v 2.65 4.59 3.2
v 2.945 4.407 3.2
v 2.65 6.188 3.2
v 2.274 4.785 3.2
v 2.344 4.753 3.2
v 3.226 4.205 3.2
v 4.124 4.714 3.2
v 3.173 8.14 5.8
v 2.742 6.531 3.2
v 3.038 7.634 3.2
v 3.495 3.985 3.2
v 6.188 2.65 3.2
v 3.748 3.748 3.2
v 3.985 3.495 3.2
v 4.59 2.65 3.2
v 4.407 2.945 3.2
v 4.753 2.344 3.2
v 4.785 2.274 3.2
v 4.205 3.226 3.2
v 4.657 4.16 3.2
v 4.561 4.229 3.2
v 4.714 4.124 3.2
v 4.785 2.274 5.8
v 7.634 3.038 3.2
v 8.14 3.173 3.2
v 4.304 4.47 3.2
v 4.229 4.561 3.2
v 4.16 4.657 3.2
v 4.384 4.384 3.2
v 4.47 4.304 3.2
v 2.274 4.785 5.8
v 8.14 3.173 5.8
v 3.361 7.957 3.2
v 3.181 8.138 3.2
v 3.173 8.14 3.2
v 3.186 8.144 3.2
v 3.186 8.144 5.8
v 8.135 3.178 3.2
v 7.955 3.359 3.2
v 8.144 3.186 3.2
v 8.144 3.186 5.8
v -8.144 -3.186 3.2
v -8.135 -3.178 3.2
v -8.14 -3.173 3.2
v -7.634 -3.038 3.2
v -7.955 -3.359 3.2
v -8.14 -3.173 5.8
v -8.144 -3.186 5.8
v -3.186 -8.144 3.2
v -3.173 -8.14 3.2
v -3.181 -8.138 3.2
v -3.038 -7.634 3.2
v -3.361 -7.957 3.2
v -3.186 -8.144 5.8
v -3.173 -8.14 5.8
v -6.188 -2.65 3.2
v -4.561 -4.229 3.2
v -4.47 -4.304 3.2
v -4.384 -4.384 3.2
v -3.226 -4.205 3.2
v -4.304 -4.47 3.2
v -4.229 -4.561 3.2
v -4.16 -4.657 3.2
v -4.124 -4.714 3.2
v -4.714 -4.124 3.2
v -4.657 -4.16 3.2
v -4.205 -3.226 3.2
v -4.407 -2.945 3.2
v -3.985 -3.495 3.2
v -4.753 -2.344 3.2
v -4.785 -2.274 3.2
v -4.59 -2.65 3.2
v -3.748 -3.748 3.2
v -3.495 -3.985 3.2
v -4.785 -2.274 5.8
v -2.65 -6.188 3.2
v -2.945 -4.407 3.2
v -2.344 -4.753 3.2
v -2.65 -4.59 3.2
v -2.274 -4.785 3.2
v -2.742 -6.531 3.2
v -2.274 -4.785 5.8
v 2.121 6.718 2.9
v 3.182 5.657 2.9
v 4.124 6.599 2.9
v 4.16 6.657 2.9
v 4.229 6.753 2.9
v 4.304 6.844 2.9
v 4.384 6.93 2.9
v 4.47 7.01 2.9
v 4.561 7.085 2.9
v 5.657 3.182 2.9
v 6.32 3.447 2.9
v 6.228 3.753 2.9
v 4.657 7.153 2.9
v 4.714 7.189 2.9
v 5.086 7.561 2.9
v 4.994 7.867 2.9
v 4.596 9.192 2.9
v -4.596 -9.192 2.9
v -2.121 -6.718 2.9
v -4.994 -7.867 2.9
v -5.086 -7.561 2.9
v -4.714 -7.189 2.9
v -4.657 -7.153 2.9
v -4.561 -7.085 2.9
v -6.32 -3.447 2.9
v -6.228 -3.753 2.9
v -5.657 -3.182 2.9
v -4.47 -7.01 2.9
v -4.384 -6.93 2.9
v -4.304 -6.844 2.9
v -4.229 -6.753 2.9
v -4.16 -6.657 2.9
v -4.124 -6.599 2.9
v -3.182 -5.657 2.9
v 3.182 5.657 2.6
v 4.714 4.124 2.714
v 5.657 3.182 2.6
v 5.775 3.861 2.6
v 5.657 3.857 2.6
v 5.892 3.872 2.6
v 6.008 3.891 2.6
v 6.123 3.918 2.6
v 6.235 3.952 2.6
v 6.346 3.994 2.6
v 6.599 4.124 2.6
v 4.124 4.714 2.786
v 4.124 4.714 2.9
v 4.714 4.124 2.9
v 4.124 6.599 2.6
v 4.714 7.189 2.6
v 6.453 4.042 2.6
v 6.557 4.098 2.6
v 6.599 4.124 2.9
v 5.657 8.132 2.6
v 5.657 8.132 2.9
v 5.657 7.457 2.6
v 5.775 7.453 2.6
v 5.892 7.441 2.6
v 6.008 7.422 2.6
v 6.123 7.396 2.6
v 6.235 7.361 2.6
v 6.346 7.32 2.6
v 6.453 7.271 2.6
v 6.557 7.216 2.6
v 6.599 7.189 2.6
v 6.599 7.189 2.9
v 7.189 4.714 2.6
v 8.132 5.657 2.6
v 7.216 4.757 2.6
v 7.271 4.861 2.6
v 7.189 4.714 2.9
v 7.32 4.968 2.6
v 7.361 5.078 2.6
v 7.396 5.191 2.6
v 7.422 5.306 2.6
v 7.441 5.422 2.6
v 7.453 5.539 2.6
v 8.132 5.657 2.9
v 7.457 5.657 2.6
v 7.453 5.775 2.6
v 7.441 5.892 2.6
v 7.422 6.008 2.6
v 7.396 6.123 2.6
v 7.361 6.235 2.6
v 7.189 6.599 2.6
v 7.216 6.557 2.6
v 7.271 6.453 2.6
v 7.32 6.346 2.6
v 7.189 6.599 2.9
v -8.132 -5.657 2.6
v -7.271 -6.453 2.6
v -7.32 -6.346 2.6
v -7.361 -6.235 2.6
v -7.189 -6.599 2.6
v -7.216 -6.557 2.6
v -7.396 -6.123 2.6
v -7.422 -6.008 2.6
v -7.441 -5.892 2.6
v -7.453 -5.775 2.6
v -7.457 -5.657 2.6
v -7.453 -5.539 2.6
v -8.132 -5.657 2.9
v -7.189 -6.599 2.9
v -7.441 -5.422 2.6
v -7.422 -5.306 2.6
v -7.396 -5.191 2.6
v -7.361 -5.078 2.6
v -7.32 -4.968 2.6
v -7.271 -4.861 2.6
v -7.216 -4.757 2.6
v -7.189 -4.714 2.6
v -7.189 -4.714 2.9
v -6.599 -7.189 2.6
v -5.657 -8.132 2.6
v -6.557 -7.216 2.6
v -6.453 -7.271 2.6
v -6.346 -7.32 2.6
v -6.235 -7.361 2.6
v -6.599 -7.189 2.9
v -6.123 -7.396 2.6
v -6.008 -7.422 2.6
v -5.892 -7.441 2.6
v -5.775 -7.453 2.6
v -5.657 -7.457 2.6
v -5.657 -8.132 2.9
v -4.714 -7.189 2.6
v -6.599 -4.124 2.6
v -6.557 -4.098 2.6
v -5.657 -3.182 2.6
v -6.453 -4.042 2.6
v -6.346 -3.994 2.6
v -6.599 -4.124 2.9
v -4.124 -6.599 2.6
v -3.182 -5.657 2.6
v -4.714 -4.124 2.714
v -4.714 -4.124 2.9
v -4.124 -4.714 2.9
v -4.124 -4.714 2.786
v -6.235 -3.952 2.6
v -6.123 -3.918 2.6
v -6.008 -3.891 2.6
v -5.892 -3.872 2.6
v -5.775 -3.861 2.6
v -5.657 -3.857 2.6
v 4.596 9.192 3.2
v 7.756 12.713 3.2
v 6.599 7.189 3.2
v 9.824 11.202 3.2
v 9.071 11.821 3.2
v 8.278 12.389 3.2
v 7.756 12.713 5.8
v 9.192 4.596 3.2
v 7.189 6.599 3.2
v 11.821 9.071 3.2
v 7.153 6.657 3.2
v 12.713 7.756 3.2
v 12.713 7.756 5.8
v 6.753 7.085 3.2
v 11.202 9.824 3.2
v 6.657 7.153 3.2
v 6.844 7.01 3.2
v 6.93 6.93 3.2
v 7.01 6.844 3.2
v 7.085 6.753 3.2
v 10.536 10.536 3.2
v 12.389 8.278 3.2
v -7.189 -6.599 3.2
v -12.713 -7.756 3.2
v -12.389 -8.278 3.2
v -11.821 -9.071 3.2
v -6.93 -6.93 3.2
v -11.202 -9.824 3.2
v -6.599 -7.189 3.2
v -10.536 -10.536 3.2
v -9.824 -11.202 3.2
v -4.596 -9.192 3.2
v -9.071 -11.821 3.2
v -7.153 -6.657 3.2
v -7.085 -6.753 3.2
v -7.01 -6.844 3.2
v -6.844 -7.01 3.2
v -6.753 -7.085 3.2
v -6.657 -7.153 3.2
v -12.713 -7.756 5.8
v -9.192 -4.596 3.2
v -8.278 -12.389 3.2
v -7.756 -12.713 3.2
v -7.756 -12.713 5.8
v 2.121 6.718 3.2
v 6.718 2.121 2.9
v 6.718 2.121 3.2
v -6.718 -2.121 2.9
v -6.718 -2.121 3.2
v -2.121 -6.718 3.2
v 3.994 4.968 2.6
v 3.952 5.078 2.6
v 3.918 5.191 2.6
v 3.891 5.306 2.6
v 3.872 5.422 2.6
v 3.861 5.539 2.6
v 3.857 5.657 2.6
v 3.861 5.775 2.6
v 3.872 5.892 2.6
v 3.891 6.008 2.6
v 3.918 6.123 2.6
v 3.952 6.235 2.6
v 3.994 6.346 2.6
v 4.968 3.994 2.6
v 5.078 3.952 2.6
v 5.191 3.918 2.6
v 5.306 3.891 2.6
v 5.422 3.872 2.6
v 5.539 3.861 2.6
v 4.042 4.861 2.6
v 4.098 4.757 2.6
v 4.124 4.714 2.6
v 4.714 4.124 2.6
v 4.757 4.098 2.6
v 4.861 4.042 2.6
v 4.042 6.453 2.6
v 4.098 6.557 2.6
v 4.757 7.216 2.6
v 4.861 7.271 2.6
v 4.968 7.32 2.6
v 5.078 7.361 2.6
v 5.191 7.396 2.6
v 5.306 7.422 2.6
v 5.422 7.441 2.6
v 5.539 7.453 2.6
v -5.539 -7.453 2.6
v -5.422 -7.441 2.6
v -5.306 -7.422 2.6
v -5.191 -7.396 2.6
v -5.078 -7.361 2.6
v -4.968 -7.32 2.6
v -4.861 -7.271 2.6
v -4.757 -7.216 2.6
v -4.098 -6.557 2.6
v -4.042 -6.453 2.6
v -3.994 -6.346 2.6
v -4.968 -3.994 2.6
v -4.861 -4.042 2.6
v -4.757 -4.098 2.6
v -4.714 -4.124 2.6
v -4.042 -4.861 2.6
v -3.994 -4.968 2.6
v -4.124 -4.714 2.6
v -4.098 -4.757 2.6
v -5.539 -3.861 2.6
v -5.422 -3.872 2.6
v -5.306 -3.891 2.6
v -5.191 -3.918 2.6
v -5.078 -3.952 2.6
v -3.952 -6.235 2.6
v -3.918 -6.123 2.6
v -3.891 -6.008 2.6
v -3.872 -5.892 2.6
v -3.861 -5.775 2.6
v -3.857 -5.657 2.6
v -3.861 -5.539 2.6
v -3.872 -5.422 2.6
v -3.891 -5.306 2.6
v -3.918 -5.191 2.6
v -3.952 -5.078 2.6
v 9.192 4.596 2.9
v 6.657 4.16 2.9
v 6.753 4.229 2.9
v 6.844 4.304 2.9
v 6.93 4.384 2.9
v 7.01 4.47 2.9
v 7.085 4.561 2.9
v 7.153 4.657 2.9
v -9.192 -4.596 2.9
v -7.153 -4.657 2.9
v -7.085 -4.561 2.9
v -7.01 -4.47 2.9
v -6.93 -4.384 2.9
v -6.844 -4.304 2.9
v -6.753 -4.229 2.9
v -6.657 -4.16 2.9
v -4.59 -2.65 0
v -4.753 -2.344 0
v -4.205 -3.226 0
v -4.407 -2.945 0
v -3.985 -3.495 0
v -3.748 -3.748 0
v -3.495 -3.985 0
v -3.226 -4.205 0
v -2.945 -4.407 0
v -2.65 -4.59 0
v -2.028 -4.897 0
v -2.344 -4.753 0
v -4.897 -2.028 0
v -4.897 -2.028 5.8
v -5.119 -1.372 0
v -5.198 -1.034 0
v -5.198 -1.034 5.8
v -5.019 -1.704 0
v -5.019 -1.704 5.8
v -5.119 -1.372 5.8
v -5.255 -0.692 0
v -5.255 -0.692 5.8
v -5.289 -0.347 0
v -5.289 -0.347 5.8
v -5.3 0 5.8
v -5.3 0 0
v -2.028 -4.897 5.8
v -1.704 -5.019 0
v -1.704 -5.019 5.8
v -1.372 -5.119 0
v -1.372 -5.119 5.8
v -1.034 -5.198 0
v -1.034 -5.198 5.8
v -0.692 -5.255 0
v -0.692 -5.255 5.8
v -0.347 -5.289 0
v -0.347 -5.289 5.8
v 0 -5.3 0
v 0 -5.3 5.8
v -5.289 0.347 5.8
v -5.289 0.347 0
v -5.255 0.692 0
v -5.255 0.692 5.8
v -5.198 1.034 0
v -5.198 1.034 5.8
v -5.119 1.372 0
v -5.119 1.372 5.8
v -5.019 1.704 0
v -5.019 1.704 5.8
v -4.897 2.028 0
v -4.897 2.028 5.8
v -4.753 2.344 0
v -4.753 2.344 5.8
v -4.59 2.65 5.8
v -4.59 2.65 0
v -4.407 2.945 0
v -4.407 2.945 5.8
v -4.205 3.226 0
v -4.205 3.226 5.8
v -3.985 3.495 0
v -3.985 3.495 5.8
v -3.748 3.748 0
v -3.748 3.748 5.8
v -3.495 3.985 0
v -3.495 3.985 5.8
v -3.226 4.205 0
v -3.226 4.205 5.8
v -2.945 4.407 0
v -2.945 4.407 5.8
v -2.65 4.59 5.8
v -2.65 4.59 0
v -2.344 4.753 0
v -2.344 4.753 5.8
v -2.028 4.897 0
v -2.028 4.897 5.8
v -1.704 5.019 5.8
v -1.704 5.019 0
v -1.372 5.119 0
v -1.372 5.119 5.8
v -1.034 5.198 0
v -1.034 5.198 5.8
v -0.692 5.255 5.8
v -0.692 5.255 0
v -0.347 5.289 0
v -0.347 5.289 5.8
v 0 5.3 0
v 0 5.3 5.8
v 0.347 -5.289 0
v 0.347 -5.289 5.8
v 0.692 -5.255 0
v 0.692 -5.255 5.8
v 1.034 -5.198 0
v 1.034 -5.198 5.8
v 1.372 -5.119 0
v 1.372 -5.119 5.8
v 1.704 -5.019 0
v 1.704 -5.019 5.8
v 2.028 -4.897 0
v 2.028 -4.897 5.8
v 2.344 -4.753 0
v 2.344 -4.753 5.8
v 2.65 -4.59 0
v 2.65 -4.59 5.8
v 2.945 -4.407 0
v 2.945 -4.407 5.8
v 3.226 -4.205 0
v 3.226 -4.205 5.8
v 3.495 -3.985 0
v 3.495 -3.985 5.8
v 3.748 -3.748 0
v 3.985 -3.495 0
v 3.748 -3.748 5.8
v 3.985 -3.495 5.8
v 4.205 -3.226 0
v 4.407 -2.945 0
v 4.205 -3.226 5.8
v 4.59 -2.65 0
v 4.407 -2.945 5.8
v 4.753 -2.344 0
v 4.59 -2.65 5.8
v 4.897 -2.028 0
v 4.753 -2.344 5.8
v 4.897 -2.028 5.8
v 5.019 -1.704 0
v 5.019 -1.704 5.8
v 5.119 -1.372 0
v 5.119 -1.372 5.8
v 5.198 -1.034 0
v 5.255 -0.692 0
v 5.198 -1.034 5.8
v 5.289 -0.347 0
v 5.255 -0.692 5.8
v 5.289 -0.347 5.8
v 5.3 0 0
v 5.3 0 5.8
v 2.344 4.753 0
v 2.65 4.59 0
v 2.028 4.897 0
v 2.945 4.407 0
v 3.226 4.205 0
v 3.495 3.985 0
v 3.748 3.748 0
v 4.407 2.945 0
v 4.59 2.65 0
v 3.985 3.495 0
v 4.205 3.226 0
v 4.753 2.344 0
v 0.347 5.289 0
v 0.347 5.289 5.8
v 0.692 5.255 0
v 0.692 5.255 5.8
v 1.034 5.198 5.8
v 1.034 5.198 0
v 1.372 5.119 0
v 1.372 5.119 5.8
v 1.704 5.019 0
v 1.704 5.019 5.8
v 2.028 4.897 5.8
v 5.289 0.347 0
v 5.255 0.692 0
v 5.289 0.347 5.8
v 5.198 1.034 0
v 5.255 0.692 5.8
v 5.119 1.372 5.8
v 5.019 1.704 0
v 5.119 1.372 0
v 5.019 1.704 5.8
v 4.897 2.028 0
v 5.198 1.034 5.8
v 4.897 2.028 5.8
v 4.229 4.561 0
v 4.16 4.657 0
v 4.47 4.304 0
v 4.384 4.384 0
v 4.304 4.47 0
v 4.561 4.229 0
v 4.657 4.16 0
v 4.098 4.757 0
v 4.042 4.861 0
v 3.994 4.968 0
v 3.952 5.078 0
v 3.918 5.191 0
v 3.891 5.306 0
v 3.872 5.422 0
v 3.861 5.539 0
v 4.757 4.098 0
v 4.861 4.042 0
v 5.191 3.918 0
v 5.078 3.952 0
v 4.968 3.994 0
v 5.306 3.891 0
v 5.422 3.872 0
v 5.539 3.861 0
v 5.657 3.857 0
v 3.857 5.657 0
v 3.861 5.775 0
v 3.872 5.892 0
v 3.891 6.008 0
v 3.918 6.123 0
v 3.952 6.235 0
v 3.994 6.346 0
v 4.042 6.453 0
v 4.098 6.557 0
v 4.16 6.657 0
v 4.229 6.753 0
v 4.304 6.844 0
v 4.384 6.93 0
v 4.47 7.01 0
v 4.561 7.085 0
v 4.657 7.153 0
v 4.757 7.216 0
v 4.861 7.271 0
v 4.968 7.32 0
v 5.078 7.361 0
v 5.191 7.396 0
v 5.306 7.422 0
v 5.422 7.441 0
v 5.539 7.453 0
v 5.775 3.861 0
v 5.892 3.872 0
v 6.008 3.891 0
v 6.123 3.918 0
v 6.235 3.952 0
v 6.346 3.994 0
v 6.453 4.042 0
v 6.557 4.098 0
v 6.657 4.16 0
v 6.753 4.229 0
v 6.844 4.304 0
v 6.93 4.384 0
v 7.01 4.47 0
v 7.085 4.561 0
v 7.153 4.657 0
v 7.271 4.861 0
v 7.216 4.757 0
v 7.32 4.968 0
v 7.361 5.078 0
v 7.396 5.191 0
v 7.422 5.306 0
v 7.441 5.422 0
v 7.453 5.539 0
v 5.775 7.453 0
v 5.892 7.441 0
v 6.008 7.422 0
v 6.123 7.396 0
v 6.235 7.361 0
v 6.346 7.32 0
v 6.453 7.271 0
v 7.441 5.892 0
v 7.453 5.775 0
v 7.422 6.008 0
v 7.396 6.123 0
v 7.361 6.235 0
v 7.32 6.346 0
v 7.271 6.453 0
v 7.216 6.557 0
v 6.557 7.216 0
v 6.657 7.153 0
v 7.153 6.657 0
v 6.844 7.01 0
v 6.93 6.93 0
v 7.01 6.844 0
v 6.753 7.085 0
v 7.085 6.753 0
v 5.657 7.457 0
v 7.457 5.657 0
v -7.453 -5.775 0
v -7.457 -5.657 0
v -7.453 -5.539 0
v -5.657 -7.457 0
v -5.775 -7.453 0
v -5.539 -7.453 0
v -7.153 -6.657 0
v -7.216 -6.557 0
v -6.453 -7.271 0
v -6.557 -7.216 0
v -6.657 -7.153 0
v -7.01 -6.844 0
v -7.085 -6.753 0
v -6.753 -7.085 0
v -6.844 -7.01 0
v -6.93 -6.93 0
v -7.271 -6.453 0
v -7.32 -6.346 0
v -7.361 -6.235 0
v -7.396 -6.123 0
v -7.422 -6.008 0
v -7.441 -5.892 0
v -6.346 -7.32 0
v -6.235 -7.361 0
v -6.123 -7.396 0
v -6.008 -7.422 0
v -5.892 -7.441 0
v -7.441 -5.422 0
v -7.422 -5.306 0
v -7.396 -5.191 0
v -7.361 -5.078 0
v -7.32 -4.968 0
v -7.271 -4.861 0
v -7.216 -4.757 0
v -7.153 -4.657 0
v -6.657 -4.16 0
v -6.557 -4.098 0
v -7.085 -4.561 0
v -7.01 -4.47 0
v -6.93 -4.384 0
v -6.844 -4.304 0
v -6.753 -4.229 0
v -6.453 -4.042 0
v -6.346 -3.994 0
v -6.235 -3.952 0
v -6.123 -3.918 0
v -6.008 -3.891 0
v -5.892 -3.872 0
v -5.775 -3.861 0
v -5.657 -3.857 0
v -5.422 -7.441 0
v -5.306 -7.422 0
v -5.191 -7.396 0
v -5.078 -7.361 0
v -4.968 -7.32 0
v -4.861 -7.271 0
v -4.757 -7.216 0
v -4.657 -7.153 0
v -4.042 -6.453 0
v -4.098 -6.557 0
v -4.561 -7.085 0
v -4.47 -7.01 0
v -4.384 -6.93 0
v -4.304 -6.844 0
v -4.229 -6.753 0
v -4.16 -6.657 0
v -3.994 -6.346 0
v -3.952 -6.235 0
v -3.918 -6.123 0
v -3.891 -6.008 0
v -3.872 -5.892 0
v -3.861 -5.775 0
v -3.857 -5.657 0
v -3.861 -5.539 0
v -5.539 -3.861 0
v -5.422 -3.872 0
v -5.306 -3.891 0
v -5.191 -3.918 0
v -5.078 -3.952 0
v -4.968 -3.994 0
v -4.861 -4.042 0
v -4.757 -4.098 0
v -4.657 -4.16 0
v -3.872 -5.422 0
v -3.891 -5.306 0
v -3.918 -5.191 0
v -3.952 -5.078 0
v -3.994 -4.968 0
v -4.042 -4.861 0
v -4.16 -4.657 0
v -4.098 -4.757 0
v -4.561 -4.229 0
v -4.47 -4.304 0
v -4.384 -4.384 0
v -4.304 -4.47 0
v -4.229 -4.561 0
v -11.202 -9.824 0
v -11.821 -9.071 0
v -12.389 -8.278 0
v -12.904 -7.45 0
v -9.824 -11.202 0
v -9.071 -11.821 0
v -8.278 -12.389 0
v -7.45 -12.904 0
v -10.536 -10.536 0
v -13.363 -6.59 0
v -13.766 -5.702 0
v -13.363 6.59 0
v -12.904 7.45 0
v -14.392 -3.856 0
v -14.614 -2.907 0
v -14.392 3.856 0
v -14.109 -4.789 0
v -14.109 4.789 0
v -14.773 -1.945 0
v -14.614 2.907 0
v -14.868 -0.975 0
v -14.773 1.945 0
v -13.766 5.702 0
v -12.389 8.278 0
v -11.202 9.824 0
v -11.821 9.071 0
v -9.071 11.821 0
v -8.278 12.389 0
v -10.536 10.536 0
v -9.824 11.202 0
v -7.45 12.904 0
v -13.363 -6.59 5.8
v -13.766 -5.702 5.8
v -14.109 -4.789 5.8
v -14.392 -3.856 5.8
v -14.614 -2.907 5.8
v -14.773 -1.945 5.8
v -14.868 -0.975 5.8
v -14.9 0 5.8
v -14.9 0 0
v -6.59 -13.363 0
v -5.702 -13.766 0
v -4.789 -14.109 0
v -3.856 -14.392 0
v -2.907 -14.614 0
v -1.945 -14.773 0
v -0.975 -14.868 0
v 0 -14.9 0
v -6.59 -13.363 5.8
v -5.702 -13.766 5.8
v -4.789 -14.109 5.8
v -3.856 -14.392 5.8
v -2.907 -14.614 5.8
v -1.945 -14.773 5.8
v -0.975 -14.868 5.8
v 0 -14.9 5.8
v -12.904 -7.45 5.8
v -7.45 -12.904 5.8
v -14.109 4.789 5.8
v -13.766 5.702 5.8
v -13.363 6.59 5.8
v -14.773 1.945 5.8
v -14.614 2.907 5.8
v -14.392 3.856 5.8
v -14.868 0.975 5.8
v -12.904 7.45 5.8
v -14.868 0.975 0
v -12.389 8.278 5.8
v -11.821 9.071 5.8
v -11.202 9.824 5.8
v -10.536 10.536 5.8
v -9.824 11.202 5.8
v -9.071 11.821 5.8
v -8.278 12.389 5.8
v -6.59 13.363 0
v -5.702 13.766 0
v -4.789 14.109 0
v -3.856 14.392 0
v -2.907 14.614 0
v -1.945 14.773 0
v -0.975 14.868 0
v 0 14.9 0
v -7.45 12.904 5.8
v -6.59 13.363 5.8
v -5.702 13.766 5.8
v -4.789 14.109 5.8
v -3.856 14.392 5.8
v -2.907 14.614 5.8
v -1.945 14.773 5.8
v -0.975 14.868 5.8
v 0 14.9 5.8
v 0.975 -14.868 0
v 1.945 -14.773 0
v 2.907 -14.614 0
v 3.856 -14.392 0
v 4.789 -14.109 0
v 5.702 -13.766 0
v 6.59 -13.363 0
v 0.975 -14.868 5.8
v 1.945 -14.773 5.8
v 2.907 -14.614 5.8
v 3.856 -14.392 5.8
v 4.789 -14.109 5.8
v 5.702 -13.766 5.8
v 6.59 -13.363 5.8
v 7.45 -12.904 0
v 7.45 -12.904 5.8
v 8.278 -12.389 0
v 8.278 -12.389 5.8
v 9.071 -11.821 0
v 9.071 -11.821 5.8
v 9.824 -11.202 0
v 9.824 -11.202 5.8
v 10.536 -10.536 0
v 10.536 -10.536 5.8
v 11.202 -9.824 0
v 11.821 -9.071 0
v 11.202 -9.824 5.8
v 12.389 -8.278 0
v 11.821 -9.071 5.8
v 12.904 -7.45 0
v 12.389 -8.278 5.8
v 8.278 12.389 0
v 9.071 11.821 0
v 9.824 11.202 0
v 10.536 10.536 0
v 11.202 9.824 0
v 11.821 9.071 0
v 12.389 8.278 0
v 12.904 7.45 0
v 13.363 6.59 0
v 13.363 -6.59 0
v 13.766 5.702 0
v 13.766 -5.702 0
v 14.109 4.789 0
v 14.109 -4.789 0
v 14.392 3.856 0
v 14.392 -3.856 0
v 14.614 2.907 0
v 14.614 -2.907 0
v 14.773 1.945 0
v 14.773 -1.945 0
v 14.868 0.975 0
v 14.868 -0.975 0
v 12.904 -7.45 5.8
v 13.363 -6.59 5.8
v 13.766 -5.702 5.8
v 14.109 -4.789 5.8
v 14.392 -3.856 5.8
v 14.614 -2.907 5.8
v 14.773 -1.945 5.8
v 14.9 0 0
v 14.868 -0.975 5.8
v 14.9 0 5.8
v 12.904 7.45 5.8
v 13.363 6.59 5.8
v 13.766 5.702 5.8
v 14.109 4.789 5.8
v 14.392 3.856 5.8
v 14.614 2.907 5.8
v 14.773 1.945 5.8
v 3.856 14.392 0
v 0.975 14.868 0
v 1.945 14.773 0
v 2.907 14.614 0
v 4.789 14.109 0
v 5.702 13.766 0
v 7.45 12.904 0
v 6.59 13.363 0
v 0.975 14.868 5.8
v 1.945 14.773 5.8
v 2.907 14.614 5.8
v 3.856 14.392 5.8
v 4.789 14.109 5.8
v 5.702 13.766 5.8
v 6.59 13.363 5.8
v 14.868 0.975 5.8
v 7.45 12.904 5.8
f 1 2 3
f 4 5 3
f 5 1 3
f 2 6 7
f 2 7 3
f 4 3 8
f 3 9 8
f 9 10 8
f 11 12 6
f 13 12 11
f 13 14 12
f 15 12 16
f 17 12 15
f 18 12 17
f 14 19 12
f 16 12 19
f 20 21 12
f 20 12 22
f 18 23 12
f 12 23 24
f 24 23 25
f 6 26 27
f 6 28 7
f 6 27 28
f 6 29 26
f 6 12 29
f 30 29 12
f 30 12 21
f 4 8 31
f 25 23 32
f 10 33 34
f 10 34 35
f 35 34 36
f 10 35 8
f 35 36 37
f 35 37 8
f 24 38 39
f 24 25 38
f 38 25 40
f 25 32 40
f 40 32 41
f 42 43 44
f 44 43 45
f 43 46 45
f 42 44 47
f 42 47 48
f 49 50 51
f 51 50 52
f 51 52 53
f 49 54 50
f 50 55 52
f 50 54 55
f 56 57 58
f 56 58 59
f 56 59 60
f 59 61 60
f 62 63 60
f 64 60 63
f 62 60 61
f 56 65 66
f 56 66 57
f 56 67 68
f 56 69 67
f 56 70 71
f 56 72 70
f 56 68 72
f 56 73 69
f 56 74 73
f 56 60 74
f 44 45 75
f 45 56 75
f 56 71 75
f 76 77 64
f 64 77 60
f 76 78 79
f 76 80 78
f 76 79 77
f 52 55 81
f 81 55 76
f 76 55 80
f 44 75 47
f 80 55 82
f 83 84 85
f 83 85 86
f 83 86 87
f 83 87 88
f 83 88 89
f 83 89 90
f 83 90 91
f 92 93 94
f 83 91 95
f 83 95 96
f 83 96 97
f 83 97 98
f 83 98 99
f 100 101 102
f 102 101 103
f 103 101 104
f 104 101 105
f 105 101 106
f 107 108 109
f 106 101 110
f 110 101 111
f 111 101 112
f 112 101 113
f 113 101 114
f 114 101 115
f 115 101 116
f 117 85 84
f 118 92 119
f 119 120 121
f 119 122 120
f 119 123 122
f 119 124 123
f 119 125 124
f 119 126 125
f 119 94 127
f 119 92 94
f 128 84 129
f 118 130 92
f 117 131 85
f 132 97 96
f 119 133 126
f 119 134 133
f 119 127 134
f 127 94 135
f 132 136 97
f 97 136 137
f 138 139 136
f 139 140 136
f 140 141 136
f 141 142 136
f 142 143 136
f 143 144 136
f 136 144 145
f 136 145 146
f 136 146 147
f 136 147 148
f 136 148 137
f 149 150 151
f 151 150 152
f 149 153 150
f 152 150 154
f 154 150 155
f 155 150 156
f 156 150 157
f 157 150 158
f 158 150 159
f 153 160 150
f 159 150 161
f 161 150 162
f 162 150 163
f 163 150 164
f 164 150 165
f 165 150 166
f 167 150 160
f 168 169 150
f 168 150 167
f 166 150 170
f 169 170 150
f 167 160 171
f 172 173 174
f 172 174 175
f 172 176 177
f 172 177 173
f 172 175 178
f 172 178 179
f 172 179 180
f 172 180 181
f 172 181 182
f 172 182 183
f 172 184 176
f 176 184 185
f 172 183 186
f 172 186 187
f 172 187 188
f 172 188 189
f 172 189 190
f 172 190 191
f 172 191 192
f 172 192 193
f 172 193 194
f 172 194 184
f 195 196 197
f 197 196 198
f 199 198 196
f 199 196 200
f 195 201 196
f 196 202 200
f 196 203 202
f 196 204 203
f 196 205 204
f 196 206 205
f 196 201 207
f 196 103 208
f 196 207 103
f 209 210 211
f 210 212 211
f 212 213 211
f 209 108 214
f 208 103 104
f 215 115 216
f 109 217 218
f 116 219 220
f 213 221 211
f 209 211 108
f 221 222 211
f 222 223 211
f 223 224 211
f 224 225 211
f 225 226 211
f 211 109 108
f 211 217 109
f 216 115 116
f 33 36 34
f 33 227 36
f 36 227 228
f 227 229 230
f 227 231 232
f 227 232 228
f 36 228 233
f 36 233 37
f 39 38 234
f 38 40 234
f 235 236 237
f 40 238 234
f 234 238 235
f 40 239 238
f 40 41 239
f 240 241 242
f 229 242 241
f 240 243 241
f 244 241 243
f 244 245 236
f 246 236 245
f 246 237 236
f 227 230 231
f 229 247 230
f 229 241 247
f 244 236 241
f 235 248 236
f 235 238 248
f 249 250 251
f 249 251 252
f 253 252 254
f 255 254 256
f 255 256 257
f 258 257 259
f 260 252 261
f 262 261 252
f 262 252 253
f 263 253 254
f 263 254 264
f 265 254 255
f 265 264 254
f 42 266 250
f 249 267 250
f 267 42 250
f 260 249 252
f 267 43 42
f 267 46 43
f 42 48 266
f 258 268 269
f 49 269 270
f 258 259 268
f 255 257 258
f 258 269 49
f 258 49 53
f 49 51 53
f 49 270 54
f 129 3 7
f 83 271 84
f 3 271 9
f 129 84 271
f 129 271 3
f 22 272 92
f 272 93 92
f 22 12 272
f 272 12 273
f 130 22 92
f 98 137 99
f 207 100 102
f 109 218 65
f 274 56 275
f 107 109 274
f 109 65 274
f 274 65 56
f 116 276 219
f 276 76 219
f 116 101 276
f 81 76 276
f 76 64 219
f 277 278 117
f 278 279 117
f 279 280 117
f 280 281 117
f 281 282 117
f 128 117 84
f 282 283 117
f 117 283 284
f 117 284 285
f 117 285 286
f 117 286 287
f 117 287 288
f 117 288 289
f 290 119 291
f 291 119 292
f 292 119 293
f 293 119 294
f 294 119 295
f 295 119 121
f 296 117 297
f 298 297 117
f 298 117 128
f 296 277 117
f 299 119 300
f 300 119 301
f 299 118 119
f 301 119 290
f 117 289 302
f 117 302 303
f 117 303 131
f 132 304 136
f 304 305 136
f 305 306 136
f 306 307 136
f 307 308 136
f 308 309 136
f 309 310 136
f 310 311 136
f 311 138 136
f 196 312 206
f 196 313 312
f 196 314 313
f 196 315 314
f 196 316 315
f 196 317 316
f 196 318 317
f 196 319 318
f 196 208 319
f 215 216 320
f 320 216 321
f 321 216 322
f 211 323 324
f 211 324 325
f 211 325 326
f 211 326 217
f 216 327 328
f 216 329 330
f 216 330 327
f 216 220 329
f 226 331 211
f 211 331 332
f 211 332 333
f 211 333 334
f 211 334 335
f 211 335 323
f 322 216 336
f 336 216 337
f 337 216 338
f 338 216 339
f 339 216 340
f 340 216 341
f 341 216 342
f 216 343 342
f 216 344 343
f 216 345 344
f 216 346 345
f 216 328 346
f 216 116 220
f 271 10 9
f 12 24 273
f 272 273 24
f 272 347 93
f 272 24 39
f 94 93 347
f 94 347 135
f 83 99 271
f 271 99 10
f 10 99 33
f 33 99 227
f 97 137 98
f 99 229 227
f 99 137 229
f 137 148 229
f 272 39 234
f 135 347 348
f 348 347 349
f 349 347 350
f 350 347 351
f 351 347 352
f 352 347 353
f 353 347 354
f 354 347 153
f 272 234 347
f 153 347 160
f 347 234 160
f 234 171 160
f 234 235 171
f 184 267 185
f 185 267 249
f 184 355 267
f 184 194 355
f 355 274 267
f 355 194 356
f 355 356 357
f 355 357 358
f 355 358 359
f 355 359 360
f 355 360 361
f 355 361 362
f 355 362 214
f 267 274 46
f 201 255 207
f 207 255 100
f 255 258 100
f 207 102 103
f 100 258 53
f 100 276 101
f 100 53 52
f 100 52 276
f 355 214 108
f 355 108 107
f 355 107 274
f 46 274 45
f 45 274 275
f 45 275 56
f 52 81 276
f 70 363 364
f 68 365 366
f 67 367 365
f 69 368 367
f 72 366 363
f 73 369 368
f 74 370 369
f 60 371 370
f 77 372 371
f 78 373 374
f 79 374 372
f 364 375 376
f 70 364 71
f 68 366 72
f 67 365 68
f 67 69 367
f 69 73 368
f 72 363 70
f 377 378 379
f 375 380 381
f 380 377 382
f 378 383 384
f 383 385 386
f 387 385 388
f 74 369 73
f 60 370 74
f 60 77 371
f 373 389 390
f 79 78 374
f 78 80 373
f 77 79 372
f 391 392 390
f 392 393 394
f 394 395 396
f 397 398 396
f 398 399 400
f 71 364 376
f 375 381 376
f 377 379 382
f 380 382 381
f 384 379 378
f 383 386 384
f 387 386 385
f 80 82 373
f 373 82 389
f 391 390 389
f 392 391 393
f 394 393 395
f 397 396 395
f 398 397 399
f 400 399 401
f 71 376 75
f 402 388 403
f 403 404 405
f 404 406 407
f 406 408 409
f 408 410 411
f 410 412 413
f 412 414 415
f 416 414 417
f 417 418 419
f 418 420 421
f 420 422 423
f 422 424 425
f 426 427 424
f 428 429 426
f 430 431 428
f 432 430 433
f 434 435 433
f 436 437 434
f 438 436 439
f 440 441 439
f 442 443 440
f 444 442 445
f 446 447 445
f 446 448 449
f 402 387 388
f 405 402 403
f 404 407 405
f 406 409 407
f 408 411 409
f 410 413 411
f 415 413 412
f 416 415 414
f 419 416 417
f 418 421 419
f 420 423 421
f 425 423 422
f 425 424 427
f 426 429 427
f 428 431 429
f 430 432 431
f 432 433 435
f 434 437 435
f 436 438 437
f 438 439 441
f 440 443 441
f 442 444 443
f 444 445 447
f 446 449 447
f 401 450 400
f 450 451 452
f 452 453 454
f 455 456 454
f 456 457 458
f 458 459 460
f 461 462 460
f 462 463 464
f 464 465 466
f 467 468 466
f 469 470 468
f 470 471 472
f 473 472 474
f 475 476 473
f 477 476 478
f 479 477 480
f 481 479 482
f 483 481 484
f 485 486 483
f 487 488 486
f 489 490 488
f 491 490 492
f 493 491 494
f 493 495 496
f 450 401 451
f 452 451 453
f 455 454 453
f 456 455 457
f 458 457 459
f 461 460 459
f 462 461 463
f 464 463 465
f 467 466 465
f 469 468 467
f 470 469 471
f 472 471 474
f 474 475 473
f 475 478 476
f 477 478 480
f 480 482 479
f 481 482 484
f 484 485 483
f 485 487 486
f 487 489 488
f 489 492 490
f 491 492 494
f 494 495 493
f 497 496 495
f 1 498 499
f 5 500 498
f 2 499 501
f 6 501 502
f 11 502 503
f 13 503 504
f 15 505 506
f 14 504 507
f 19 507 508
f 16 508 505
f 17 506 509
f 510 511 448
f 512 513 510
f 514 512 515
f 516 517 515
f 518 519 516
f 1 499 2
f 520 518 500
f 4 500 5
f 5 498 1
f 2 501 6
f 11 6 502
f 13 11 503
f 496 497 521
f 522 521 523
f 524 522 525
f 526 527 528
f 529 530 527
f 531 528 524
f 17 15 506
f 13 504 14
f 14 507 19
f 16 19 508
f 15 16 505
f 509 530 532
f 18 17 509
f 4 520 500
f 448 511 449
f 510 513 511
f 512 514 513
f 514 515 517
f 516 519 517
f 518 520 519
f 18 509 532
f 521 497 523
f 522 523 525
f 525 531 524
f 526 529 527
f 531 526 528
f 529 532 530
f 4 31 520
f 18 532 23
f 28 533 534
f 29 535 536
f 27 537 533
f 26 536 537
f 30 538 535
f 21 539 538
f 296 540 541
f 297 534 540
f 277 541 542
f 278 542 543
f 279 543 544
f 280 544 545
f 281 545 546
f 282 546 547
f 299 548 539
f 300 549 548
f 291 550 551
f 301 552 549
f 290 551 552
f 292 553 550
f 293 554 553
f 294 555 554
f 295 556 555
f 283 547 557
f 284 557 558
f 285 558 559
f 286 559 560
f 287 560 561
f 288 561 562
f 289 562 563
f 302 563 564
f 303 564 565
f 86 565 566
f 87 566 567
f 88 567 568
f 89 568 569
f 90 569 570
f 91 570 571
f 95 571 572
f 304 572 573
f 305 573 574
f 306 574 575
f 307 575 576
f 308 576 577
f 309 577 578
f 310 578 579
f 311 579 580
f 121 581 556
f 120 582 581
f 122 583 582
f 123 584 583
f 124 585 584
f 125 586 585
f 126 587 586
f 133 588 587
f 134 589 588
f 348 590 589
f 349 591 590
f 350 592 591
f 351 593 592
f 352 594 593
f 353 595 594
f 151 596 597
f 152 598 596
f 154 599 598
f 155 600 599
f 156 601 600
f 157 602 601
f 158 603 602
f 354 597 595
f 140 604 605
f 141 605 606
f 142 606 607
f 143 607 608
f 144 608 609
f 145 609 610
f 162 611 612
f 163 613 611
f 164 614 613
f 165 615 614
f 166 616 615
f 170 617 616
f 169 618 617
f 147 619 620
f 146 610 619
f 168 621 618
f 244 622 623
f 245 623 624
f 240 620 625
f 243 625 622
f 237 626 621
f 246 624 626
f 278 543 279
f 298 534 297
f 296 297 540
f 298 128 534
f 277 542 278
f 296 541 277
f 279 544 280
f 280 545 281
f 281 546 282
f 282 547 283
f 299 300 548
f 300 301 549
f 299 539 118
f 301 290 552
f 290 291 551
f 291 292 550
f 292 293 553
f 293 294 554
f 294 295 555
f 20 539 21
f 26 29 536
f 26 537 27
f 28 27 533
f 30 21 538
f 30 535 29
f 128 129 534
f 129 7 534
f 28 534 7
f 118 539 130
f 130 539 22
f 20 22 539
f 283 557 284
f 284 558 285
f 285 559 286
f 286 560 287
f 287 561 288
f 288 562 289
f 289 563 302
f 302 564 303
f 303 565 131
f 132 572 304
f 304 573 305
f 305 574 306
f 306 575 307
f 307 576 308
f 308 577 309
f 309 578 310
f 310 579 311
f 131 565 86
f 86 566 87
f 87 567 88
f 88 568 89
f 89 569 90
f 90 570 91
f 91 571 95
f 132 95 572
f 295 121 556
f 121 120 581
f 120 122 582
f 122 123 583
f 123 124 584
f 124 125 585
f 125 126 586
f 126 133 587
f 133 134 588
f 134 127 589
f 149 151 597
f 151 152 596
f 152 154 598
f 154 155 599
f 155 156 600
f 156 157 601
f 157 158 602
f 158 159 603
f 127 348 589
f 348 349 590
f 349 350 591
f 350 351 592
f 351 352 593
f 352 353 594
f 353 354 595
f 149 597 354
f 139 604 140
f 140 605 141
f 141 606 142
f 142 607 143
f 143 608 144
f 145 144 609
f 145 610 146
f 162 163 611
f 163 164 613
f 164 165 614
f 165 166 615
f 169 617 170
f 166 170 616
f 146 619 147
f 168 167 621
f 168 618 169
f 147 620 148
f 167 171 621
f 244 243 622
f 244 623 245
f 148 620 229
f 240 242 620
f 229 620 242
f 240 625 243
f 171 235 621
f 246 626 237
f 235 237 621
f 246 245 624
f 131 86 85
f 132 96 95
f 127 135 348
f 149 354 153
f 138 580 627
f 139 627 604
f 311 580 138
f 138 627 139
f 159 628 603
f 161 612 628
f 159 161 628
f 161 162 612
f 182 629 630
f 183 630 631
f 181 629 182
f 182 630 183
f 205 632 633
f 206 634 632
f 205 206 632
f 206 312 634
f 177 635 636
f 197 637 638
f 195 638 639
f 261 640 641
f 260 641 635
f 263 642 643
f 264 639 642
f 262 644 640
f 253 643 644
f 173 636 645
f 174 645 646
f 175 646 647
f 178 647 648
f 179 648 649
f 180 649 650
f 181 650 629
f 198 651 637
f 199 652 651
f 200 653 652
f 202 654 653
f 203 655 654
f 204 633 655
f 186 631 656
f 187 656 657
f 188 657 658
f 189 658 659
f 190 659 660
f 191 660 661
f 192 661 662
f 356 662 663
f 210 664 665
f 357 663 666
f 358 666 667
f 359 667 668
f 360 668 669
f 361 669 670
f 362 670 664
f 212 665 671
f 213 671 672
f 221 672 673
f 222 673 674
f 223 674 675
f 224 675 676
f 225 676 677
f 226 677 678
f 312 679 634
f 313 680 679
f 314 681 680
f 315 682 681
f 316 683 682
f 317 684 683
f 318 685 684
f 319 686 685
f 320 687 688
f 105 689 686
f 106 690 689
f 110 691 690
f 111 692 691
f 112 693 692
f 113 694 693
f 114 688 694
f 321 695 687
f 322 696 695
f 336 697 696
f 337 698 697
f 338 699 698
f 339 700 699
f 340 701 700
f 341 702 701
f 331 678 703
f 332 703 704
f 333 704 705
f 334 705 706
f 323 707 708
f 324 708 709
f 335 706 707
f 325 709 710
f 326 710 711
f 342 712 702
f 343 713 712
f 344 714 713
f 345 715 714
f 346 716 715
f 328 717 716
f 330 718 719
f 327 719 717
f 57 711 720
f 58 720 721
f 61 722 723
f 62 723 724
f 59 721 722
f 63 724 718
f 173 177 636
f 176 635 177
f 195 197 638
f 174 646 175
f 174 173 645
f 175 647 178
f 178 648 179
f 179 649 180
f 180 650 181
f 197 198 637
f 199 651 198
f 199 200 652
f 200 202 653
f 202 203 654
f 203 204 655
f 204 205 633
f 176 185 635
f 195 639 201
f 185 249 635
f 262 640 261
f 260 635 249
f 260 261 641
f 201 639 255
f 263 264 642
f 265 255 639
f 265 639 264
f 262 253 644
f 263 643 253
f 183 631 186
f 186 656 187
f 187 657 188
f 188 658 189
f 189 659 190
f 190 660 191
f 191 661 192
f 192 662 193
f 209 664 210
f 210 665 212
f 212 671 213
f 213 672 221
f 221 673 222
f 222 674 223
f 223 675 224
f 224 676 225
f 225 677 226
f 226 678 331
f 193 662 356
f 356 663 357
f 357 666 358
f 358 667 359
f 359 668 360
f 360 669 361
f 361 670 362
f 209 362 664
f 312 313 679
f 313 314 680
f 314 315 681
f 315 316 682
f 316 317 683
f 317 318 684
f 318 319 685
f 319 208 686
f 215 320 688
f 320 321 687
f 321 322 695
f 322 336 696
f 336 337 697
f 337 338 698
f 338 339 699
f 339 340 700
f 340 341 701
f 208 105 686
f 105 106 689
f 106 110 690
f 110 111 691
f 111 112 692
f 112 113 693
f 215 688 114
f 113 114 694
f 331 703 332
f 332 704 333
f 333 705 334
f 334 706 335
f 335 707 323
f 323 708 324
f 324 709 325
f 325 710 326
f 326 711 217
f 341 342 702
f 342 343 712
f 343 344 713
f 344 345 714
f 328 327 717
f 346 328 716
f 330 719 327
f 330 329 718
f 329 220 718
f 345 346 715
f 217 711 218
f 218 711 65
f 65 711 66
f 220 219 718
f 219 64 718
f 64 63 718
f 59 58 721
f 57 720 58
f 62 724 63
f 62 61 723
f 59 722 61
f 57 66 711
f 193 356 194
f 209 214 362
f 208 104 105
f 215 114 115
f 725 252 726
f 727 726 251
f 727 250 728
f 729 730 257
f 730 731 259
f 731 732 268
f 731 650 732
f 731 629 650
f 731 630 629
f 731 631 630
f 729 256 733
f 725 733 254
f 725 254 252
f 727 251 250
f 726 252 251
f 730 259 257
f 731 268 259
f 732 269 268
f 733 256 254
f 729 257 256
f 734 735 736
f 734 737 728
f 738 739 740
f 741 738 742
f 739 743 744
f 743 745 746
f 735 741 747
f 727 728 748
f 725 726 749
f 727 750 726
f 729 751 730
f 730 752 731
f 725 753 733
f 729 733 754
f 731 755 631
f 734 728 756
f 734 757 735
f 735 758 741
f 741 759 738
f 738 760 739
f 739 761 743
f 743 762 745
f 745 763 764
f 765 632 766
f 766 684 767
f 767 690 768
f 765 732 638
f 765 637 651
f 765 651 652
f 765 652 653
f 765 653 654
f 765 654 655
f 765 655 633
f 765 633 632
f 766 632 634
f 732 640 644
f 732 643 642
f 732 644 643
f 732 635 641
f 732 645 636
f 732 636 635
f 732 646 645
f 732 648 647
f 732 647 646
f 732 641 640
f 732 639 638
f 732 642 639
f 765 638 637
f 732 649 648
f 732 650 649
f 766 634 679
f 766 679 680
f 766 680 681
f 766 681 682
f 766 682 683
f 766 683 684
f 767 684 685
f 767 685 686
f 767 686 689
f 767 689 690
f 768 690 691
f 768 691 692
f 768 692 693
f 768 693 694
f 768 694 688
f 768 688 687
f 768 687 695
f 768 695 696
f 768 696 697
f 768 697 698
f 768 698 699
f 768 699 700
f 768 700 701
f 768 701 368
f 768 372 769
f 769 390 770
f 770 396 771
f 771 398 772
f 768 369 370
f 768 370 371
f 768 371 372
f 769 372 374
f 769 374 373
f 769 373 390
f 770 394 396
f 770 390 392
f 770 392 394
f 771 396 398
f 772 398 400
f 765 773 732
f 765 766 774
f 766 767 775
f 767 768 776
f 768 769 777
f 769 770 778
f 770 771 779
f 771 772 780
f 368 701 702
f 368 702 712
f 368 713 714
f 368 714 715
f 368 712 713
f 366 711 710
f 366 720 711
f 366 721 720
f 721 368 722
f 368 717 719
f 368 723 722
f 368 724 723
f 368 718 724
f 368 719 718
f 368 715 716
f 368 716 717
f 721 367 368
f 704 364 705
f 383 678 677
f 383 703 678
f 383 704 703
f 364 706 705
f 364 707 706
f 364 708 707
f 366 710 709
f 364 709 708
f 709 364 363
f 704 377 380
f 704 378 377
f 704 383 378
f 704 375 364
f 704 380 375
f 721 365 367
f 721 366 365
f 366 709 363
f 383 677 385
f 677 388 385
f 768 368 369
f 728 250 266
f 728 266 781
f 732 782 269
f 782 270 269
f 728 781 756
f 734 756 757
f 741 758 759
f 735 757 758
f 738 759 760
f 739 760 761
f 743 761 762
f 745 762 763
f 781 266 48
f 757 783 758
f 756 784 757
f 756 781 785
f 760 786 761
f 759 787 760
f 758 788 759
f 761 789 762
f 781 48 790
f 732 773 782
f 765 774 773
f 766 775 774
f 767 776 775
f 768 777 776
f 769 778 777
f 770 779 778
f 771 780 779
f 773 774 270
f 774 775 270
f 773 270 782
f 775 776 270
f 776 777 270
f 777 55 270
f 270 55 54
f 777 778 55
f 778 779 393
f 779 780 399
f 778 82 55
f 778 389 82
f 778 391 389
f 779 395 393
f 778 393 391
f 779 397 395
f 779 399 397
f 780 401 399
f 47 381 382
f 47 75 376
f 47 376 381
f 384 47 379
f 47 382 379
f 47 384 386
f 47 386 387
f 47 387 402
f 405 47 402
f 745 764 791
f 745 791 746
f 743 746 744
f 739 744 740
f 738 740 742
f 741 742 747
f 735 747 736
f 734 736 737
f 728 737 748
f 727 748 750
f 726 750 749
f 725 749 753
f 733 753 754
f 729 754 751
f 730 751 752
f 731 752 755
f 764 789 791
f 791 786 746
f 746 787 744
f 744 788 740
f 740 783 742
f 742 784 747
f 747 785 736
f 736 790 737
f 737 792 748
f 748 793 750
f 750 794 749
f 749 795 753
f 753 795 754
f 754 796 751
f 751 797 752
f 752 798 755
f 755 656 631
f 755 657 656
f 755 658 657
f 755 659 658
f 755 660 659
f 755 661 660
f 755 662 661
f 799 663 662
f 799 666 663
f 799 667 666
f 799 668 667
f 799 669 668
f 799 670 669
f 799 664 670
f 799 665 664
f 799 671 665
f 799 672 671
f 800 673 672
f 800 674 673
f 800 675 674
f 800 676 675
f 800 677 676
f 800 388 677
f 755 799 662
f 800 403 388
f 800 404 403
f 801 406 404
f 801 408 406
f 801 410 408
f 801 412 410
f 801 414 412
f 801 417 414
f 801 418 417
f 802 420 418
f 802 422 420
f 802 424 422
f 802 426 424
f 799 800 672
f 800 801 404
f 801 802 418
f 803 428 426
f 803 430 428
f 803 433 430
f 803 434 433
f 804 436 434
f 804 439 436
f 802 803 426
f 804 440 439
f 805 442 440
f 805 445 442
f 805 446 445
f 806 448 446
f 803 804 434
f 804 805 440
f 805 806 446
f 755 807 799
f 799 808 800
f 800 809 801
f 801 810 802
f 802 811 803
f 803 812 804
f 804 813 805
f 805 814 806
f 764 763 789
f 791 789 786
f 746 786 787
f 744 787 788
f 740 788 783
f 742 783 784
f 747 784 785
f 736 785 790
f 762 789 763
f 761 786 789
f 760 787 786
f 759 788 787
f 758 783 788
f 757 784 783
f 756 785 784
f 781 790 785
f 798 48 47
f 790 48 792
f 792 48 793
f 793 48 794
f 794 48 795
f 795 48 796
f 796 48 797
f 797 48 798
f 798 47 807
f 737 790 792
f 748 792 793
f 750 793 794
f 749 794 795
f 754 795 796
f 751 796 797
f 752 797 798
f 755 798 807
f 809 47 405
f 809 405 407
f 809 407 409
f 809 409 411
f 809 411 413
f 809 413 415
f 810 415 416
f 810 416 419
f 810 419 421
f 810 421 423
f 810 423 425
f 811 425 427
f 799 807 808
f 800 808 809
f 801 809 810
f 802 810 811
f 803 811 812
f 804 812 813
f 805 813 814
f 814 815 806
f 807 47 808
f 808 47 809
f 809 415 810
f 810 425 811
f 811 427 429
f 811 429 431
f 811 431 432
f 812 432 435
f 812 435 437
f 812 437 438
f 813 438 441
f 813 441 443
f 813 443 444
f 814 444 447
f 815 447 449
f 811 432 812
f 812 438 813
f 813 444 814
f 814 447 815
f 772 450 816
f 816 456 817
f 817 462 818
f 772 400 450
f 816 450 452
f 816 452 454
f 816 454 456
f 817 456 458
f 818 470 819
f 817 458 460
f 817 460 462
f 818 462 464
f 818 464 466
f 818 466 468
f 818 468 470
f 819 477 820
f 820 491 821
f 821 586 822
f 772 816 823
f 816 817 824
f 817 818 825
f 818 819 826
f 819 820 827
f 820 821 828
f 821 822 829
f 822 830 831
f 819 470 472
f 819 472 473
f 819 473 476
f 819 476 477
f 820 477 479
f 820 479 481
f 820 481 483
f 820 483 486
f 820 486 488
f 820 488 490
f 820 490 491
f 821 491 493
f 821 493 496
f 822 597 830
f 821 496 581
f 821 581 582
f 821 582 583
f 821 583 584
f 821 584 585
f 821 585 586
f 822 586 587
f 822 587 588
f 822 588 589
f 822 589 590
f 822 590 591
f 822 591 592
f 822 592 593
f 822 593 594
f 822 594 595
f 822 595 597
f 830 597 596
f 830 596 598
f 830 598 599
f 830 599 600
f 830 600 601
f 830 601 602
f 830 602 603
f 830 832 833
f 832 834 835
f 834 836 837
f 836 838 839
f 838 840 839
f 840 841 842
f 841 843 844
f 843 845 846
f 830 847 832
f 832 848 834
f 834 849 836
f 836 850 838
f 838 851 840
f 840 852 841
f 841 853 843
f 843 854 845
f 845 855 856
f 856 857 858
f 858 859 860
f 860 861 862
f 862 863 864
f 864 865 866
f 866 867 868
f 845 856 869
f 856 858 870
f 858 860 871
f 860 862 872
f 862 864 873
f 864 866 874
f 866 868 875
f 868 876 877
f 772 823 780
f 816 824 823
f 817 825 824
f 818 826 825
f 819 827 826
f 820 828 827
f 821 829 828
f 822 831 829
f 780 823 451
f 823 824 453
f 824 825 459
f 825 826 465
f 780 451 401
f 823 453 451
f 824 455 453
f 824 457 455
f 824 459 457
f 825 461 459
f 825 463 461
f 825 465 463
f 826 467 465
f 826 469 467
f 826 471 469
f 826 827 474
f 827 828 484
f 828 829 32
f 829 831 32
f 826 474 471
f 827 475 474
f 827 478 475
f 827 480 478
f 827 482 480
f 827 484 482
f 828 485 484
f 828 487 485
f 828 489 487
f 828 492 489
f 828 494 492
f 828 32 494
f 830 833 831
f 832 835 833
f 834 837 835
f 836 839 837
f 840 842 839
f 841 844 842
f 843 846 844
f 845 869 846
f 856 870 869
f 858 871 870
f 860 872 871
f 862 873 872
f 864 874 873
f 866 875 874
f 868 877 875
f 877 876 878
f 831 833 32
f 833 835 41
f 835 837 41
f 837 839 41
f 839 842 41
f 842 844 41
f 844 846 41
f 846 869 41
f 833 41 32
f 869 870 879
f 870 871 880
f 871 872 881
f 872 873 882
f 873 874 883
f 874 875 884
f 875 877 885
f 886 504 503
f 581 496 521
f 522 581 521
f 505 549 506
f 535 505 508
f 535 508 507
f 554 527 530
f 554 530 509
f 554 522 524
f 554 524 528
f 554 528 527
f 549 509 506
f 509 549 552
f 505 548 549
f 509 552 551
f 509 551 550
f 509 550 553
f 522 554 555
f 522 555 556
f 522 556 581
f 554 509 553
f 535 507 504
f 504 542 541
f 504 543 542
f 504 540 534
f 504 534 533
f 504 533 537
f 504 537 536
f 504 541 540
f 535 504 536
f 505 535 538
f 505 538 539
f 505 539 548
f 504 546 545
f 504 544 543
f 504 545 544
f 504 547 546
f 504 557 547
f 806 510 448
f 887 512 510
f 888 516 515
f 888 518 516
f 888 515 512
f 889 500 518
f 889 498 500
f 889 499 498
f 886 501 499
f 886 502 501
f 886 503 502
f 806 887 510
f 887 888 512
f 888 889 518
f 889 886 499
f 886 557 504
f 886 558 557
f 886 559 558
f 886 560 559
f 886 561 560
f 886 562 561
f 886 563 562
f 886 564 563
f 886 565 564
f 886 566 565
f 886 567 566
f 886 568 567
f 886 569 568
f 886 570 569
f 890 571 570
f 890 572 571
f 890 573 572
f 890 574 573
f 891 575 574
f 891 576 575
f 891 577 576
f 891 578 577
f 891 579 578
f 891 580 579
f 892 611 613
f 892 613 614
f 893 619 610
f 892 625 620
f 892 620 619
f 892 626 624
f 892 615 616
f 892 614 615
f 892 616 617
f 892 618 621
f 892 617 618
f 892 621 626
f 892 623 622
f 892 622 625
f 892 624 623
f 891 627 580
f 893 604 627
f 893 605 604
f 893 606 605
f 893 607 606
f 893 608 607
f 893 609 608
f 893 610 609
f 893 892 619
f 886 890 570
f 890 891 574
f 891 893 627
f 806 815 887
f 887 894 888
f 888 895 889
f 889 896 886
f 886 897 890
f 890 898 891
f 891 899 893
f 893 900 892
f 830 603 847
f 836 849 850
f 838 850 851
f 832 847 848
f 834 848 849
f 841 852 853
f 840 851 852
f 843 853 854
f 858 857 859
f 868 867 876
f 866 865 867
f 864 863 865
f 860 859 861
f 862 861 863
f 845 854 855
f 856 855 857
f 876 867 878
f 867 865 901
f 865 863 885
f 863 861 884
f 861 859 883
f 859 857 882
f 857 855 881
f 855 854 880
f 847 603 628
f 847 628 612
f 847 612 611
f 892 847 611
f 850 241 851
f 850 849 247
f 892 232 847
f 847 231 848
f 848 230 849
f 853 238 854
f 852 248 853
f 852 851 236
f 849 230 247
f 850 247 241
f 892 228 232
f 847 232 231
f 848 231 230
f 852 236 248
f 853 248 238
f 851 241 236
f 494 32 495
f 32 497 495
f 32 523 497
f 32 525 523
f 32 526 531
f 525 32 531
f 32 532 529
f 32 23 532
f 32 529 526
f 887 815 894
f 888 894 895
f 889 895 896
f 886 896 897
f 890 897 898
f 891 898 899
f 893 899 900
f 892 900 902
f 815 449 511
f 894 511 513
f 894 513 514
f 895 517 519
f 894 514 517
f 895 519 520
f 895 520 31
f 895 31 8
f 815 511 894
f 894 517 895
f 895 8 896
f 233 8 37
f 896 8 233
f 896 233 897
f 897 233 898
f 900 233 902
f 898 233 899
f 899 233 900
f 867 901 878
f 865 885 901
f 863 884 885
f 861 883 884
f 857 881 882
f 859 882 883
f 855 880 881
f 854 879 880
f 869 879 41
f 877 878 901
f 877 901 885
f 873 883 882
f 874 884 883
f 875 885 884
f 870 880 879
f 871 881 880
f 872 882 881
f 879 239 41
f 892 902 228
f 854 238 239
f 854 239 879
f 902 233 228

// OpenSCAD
// Optional test print. Bearing seats left to right: radial allowance 0, 0.10, 0.20 mm.
$fn=96;
difference() {
	union() {
		cylinder(h = 5.8, r = 14.9);
	}
	union() {
		translate(v = [5.656854249492381, 5.656854249492381, 5.8999999999999995]) {
			rotate(a = [0, 0, 225.0]) {
				difference() {
					union() {
						translate(v = [0, 0, 0]) {
							rotate(a = [0, 0, 30.0]) {
								difference() {
									union();
									union();
								}
							}
						}
						translate(v = [0, 0, 0]) {
							rotate(a = [0, 0, 30.0]) {
								difference() {
									union() {
										translate(v = [0, 0, -2.7]) {
											linear_extrude(height = 2.8000000000000003) {
												polygon(points = [[3.5119999999999996, 0.0], [1.7560000000000002, 3.041481218090948], [-1.755999999999999, 3.0414812180909485], [-3.5119999999999996, 4.300959558605504e-16], [-1.7560000000000013, -3.0414812180909476], [1.7559999999999973, -3.0414812180909494]]);
											}
										}
									}
									union();
								}
							}
						}
						translate(v = [0, 0, 0]) {
							rotate(a = [0, 0, 30.0]) {
								difference() {
									union();
									union();
								}
							}
						}
						translate(v = [-1.75, -3.25, -3.0]) {
							cube(size = [3.5, 6.5, 0.3]);
						}
						translate(v = [-1.75, -1.75, -3.3]) {
							cube(size = [3.5, 3.5, 0.3]);
						}
						translate(v = [-1.75, -3.25, 0.0]) {
							cube(size = [3.5, 6.5, 0.3]);
						}
						translate(v = [-1.75, -1.75, 0.3]) {
							cube(size = [3.5, 3.5, 0.3]);
						}
						translate(v = [-20.0, -3.5052999999999996, -2.7]) {
							cube(size = [20, 7.010599999999999, 2.8000000000000003]);
						}
						translate(v = [-1.75, -3.25, -3.0]) {
							cube(size = [3.5, 6.5, 0.3]);
						}
						translate(v = [-1.75, -1.75, -3.3]) {
							cube(size = [3.5, 3.5, 0.3]);
						}
						translate(v = [-1.75, -3.25, 0.0]) {
							cube(size = [3.5, 6.5, 0.3]);
						}
						translate(v = [-1.75, -1.75, 0.3]) {
							cube(size = [3.5, 3.5, 0.3]);
						}
						translate(v = [-1.75, -3.25, -3.0]) {
							cube(size = [3.5, 6.5, 0.3]);
						}
						translate(v = [-1.75, -1.75, -3.3]) {
							cube(size = [3.5, 3.5, 0.3]);
						}
						translate(v = [-1.75, -3.25, 0.0]) {
							cube(size = [3.5, 6.5, 0.3]);
						}
						translate(v = [-1.75, -1.75, 0.3]) {
							cube(size = [3.5, 3.5, 0.3]);
						}
					}
					union();
				}
			}
		}
		translate(v = [-5.6568542494923815, -5.65685424949238, 5.8999999999999995]) {
			rotate(a = [0, 0, 44.99999999999997]) {
				difference() {
					union() {
						translate(v = [0, 0, 0]) {
							rotate(a = [0, 0, 30.0]) {
								difference() {
									union();
									union();
								}
							}
						}
						translate(v = [0, 0, 0]) {
							rotate(a = [0, 0, 30.0]) {
								difference() {
									union() {
										translate(v = [0, 0, -2.7]) {
											linear_extrude(height = 2.8000000000000003) {
												polygon(points = [[3.5119999999999996, 0.0], [1.7560000000000002, 3.041481218090948], [-1.755999999999999, 3.0414812180909485], [-3.5119999999999996, 4.300959558605504e-16], [-1.7560000000000013, -3.0414812180909476], [1.7559999999999973, -3.0414812180909494]]);
											}
										}
									}
									union();
								}
							}
						}
						translate(v = [0, 0, 0]) {
							rotate(a = [0, 0, 30.0]) {
								difference() {
									union();
									union();
								}
							}
						}
						translate(v = [-1.75, -3.25, -3.0]) {
							cube(size = [3.5, 6.5, 0.3]);
						}
						translate(v = [-1.75, -1.75, -3.3]) {
							cube(size = [3.5, 3.5, 0.3]);
						}
						translate(v = [-1.75, -3.25, 0.0]) {
							cube(size = [3.5, 6.5, 0.3]);
						}
						translate(v = [-1.75, -1.75, 0.3]) {
							cube(size = [3.5, 3.5, 0.3]);
						}
						translate(v = [-20.0, -3.5052999999999996, -2.7]) {
							cube(size = [20, 7.010599999999999, 2.8000000000000003]);
						}
						translate(v = [-1.75, -3.25, -3.0]) {
							cube(size = [3.5, 6.5, 0.3]);
						}
						translate(v = [-1.75, -1.75, -3.3]) {
							cube(size = [3.5, 3.5, 0.3]);
						}
						translate(v = [-1.75, -3.25, 0.0]) {
							cube(size = [3.5, 6.5, 0.3]);
						}
						translate(v = [-1.75, -1.75, 0.3]) {
							cube(size = [3.5, 3.5, 0.3]);
						}
						translate(v = [-1.75, -3.25, -3.0]) {
							cube(size = [3.5, 6.5, 0.3]);
						}
						translate(v = [-1.75, -1.75, -3.3]) {
							cube(size = [3.5, 3.5, 0.3]);
						}
						translate(v = [-1.75, -3.25, 0.0]) {
							cube(size = [3.5, 6.5, 0.3]);
						}
						translate(v = [-1.75, -1.75, 0.3]) {
							cube(size = [3.5, 3.5, 0.3]);
						}
					}
					union();
				}
			}
		}
		translate(v = [0, 0, -0.01]) {
			cylinder(h = 5.819999999999999, r = 5.3);
		}
		translate(v = [5.656854249492381, 5.656854249492381, -0.01]) {
			cylinder(h = 5.819999999999999, r = 1.8);
		}
		translate(v = [-5.6568542494923815, -5.65685424949238, -0.01]) {
			cylinder(h = 5.819999999999999, r = 1.8);
		}
	}
}
